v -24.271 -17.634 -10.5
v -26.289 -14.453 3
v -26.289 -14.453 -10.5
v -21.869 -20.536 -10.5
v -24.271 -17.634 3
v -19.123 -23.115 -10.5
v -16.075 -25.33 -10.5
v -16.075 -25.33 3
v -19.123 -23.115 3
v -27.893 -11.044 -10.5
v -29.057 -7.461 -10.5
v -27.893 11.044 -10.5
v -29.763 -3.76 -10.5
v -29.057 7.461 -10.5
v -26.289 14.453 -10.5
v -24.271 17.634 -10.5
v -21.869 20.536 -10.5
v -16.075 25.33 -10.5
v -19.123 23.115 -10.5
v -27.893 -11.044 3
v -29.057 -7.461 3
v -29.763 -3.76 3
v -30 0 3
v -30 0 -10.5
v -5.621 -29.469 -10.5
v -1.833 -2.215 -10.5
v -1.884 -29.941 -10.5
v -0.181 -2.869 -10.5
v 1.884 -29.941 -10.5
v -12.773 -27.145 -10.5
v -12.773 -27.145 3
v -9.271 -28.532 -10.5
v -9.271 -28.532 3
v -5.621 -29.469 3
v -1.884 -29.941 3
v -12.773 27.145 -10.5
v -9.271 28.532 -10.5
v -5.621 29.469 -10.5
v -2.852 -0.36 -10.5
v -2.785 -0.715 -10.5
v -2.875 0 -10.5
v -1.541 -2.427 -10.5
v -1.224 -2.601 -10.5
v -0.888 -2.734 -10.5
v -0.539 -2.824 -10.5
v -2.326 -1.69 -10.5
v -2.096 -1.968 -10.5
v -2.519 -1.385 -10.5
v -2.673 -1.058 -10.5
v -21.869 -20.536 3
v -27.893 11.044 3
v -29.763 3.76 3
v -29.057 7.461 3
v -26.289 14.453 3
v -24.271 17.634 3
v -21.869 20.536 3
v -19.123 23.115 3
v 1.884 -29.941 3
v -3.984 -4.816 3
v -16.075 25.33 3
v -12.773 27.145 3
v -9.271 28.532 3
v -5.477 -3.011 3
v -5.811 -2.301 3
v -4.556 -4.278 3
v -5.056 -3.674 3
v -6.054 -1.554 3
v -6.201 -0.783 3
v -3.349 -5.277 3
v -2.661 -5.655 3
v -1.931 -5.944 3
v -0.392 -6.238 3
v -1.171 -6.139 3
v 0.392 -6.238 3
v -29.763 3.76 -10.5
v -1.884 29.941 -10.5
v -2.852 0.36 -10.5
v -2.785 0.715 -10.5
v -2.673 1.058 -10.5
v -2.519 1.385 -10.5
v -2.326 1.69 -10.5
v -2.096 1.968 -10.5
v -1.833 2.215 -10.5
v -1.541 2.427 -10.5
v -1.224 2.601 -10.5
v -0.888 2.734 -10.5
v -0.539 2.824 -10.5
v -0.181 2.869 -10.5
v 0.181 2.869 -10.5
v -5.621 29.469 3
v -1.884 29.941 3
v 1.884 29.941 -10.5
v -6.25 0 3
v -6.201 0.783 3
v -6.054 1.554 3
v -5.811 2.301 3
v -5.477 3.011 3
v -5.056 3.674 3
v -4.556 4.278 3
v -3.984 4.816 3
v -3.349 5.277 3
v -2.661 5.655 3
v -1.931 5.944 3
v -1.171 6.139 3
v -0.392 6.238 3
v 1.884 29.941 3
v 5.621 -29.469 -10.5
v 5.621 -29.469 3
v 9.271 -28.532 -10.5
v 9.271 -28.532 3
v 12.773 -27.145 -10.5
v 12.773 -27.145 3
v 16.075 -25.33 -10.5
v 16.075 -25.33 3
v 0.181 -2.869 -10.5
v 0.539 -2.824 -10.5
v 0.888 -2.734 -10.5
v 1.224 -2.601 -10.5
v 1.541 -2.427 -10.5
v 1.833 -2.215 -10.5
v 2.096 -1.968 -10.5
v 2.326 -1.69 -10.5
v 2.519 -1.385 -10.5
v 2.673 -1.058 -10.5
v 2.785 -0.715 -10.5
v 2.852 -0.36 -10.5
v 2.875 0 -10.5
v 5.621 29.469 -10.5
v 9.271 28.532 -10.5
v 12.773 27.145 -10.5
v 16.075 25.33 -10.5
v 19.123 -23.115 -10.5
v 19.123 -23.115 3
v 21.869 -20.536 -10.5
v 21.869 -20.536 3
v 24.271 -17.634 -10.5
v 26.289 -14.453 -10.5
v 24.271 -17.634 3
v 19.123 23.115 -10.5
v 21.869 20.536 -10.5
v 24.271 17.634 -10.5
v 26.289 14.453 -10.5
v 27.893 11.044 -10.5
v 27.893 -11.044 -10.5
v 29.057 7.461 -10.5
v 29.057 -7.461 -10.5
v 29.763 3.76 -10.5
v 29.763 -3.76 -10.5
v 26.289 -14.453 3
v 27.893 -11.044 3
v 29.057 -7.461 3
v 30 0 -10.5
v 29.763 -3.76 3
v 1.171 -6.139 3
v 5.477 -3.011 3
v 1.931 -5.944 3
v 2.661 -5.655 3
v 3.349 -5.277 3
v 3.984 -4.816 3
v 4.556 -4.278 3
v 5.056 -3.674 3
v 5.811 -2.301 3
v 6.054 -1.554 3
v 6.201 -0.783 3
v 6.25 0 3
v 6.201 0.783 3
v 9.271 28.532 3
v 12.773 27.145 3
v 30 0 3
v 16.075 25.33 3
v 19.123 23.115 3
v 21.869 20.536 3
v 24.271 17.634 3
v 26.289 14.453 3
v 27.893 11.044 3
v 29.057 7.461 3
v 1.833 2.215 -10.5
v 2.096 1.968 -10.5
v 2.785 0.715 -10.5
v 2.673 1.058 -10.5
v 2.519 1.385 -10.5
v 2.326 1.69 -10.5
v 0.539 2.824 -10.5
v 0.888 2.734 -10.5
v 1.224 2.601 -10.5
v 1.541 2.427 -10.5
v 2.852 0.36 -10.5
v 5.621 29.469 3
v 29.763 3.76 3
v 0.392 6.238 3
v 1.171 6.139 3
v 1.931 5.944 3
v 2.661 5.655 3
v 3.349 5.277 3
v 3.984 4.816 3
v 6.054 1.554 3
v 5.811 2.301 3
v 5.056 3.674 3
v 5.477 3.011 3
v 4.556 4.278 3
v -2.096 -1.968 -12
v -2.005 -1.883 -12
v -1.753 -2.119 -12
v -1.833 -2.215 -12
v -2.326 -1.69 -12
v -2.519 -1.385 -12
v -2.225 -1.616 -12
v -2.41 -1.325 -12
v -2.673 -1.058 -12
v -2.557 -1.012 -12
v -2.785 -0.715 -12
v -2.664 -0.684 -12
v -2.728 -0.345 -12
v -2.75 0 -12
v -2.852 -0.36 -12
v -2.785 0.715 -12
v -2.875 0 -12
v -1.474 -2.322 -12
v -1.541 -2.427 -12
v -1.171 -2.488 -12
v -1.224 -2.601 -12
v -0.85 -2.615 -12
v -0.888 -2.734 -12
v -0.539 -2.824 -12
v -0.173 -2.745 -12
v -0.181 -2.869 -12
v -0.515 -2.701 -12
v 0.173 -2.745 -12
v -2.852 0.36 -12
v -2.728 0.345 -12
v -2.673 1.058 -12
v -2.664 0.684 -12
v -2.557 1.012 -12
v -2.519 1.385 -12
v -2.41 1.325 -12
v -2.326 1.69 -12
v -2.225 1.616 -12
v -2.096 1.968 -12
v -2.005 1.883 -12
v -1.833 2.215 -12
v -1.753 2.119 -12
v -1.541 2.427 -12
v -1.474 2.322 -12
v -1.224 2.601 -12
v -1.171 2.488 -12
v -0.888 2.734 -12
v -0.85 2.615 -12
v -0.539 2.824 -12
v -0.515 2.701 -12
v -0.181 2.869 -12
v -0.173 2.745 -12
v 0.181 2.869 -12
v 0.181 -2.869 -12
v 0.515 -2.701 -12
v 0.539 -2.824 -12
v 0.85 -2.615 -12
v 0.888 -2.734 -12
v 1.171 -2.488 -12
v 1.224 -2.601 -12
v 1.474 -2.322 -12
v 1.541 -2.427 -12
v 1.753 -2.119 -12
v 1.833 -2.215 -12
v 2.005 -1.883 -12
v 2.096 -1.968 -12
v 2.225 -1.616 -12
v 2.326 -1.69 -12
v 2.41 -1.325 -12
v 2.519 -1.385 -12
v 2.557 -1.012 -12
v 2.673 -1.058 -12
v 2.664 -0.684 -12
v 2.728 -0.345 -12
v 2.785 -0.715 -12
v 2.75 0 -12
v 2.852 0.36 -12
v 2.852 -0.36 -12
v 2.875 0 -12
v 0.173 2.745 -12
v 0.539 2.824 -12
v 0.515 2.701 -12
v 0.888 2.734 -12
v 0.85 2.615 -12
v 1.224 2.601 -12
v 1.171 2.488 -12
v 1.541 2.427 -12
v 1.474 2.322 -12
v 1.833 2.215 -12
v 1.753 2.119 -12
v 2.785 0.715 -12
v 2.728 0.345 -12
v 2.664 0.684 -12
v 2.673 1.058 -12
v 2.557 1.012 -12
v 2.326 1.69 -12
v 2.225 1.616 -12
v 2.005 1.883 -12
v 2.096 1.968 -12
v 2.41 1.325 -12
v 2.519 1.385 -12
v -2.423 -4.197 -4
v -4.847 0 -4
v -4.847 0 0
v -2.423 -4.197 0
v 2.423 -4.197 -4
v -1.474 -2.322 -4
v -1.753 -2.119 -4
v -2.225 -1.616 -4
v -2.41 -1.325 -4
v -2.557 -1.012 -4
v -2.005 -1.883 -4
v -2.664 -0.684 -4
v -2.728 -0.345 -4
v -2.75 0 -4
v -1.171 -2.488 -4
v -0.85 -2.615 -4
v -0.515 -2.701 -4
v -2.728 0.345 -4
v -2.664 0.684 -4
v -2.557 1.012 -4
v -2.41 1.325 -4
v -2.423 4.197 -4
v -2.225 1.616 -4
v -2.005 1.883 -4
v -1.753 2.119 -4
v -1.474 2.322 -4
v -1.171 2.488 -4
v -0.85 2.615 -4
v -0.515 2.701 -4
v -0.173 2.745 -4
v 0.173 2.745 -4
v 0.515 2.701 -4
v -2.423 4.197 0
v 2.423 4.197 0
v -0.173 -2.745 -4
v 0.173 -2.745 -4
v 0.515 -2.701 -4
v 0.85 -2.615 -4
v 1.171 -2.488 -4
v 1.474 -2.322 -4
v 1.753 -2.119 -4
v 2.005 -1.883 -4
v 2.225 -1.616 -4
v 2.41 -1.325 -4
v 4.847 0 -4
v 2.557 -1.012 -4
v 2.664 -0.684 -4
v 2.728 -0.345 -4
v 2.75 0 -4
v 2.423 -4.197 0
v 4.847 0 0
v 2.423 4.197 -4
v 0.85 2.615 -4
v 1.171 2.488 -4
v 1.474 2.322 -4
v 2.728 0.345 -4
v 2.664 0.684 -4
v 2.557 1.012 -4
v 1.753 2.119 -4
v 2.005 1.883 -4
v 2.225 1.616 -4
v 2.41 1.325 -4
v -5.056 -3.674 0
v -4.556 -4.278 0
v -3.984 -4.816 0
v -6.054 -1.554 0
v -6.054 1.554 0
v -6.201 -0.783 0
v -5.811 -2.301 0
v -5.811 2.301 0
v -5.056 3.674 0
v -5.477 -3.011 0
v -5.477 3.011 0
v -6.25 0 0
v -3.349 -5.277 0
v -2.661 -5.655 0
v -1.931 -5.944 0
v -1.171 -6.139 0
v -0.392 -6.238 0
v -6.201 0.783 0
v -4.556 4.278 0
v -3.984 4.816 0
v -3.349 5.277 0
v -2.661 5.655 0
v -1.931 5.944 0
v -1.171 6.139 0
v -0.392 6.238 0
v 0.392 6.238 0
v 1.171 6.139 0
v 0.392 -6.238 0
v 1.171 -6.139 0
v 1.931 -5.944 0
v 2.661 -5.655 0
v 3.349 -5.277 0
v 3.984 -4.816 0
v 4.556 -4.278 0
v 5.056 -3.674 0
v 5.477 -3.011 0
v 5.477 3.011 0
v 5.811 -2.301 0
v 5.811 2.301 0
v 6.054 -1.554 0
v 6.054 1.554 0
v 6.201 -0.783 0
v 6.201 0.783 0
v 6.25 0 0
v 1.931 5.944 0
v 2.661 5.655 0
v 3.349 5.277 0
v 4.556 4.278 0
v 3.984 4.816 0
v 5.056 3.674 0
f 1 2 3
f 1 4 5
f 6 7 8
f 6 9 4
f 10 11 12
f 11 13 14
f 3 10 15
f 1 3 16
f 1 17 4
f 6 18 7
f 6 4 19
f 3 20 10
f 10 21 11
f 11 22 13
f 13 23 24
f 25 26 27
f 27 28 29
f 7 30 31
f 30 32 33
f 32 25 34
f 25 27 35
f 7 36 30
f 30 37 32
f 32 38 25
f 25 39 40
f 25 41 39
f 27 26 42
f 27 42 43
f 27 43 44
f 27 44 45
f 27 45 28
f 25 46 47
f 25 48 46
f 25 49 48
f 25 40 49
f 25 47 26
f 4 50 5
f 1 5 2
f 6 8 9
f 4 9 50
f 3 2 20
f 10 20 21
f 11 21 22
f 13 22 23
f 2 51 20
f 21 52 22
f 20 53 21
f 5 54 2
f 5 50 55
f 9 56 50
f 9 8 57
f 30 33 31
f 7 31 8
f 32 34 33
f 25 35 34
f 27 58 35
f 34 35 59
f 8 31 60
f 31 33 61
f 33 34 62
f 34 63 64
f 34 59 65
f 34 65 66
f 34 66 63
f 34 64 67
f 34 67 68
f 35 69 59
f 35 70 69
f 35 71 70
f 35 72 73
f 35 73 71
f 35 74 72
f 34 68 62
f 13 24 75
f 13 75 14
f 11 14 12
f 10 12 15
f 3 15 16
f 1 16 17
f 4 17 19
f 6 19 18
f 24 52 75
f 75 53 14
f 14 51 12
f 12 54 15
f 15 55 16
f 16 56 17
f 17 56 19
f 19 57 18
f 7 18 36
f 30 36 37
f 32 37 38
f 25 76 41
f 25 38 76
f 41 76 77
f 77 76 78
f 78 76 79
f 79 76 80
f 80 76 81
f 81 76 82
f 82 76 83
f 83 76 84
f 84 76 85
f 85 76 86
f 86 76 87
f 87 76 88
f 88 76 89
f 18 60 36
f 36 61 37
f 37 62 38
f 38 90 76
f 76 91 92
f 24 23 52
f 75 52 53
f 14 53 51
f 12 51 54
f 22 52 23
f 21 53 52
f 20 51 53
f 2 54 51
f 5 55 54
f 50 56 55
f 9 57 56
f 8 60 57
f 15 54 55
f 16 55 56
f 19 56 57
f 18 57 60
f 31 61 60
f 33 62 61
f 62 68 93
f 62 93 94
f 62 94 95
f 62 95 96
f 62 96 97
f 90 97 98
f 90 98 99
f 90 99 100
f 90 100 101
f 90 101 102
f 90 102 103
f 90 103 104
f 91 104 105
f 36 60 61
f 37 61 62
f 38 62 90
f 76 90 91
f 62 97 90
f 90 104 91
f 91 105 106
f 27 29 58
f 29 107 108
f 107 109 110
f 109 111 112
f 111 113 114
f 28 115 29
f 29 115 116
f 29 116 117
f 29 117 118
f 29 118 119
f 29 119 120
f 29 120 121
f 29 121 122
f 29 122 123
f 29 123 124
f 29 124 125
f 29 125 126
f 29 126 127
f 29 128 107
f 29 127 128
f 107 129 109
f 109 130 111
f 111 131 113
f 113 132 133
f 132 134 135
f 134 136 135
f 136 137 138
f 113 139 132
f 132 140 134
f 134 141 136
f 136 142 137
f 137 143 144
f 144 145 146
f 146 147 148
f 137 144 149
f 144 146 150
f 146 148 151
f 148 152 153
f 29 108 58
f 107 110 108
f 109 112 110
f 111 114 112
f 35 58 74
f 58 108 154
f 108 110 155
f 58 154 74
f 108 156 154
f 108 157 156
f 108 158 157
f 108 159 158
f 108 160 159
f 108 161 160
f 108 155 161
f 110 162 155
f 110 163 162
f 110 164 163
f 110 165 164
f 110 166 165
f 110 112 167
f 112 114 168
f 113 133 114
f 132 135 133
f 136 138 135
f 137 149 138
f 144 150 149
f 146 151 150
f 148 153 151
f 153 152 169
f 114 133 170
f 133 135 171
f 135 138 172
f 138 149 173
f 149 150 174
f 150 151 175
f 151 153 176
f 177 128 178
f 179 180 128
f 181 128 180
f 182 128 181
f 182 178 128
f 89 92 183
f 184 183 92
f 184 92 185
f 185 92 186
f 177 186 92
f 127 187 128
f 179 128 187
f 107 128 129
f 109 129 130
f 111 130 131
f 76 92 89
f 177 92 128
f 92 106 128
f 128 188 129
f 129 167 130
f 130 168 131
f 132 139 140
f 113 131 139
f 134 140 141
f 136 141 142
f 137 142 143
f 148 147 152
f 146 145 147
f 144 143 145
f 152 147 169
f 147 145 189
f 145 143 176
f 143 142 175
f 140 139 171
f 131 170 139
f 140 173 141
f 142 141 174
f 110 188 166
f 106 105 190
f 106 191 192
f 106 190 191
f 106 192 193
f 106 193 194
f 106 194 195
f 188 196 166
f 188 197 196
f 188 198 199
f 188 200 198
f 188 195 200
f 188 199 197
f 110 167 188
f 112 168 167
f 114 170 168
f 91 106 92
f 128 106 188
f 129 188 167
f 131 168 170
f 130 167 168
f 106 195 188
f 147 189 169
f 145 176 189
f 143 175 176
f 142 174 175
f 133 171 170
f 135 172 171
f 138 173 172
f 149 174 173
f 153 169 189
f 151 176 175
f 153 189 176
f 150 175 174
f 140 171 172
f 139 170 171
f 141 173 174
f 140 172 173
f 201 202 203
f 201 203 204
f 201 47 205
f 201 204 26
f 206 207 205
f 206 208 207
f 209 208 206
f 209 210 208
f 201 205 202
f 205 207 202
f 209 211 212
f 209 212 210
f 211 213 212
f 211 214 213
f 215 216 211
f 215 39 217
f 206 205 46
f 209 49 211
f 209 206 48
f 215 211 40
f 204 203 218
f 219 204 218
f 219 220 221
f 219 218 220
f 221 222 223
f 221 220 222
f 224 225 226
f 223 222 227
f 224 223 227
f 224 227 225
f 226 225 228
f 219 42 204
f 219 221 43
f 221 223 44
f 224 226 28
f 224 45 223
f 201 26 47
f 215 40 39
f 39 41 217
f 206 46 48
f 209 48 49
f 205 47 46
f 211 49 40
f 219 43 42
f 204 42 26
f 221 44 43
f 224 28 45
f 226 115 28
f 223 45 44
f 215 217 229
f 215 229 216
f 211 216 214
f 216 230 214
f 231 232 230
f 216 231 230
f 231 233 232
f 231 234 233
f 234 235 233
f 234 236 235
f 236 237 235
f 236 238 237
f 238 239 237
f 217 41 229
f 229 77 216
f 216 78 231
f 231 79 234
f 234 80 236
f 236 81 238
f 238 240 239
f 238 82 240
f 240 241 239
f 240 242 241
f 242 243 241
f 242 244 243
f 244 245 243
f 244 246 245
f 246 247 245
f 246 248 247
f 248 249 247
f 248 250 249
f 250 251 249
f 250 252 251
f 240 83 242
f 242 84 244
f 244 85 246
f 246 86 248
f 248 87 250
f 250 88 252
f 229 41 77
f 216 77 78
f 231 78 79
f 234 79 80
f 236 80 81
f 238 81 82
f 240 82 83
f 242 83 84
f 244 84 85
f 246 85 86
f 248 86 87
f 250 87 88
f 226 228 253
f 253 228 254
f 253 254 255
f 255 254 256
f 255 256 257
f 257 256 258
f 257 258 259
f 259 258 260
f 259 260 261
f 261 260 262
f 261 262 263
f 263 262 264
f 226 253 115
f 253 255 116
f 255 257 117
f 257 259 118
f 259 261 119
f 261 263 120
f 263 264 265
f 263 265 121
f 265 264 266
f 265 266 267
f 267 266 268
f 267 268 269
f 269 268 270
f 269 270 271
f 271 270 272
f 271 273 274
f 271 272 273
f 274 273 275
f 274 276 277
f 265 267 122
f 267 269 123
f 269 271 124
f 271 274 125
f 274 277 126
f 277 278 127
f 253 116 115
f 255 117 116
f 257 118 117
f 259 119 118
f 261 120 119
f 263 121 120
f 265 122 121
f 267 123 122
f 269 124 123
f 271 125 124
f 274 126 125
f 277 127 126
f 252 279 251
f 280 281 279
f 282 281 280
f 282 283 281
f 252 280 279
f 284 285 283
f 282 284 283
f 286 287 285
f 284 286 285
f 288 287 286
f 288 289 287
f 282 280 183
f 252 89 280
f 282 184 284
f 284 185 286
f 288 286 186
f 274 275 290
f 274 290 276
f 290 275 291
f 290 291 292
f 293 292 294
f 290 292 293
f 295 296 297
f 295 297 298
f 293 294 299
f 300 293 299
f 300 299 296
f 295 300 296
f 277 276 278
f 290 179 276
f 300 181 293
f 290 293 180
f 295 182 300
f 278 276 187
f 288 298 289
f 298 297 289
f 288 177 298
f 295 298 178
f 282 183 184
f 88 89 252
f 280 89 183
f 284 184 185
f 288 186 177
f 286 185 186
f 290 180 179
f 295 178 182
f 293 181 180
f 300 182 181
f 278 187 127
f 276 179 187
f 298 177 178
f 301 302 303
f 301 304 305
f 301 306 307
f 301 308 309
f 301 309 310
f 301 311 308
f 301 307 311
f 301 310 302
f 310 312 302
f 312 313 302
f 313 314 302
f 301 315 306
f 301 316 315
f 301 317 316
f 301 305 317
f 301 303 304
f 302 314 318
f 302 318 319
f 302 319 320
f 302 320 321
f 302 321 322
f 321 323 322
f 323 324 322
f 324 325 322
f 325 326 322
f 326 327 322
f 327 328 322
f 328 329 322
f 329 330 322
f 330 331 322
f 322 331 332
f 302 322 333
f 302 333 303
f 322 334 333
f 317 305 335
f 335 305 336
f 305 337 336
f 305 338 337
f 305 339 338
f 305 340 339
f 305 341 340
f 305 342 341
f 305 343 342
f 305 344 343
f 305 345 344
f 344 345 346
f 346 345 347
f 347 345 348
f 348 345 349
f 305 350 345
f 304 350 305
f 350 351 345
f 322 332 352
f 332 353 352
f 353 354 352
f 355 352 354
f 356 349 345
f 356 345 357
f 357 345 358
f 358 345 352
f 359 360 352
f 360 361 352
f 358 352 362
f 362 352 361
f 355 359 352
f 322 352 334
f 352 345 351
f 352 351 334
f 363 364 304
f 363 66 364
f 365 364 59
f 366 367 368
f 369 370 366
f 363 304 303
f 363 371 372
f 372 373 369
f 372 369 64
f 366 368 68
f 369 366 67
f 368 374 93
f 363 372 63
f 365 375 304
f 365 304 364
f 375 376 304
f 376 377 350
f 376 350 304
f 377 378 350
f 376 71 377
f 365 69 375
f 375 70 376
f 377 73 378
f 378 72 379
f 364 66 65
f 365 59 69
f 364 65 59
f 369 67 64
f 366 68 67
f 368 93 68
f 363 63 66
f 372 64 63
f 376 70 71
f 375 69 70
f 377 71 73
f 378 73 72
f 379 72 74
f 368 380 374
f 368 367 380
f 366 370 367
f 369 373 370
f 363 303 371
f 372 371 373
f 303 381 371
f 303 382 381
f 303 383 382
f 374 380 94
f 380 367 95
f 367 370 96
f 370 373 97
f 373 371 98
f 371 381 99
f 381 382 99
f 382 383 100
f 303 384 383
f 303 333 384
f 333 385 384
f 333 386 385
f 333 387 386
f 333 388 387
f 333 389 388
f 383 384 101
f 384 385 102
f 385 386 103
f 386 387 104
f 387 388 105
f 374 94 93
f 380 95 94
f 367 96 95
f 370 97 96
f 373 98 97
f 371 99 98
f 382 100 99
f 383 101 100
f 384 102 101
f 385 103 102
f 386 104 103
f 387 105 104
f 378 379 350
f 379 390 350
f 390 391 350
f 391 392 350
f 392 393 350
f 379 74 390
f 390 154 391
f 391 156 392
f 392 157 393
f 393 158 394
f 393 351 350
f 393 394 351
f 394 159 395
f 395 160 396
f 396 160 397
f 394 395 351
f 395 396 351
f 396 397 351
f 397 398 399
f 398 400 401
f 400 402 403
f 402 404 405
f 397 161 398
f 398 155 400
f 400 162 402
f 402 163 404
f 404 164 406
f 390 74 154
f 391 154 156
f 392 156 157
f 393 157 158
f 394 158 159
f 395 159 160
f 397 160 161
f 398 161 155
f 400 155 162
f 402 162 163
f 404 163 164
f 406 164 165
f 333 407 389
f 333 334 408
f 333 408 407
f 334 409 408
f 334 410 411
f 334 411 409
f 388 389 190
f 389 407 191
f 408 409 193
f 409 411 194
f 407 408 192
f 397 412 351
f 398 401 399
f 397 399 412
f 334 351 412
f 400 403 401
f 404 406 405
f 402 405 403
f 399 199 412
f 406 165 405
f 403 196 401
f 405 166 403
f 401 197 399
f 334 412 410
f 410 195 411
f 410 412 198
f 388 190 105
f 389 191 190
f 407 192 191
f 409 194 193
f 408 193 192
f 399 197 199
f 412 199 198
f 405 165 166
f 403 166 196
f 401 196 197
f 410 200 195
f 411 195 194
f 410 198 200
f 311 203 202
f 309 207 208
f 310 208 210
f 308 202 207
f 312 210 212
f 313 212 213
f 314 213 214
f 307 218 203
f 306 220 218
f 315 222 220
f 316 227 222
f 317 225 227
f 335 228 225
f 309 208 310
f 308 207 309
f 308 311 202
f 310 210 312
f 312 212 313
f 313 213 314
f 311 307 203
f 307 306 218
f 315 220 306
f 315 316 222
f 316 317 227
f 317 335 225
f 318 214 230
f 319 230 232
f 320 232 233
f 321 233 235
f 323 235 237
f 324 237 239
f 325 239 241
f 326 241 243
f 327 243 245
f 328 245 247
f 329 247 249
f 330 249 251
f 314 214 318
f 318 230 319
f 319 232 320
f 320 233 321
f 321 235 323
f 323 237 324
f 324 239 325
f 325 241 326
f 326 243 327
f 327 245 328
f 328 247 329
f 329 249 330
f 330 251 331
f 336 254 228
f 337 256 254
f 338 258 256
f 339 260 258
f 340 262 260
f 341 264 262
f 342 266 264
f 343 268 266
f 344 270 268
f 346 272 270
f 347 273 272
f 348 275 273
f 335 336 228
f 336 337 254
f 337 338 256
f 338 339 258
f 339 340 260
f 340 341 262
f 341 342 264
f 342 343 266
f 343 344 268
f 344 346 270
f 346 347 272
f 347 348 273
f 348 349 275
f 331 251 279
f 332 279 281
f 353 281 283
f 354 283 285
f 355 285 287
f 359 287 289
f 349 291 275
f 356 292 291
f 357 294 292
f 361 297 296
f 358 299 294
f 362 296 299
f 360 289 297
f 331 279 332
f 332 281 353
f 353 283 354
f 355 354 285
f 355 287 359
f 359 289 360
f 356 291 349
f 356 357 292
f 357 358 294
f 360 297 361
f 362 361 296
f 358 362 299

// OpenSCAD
$fn = 50;

difference() {
	union() {
		translate(v = [0, 0, -10.5]) {
			cylinder(h = 13.5, r = 30.0);
		}
		#translate(v = [0, 0, -12.0]) {
			cylinder(h = 12, r = 2.875);
		}
	}
	union() {
		translate(v = [0, 0, 0]) {
			rotate(a = [0, 0, 0]) {
				difference() {
					union() {
						translate(v = [0, 0, -4]) {
							linear_extrude(height = 4) {
								polygon(points = [[4.8468, 0.0], [2.4234000000000004, 4.197451927062417], [-2.423399999999999, 4.197451927062417], [-4.8468, 5.935618106107392e-16], [-2.423400000000002, -4.197451927062416], [2.423399999999997, -4.197451927062419]]);
							}
						}
					}
					union();
				}
			}
		}
		#cylinder(h = 3, r = 6.25);
		#translate(v = [0, 0, -100.0]) {
			cylinder(h = 200, r = 2.75);
		}
	}
}
